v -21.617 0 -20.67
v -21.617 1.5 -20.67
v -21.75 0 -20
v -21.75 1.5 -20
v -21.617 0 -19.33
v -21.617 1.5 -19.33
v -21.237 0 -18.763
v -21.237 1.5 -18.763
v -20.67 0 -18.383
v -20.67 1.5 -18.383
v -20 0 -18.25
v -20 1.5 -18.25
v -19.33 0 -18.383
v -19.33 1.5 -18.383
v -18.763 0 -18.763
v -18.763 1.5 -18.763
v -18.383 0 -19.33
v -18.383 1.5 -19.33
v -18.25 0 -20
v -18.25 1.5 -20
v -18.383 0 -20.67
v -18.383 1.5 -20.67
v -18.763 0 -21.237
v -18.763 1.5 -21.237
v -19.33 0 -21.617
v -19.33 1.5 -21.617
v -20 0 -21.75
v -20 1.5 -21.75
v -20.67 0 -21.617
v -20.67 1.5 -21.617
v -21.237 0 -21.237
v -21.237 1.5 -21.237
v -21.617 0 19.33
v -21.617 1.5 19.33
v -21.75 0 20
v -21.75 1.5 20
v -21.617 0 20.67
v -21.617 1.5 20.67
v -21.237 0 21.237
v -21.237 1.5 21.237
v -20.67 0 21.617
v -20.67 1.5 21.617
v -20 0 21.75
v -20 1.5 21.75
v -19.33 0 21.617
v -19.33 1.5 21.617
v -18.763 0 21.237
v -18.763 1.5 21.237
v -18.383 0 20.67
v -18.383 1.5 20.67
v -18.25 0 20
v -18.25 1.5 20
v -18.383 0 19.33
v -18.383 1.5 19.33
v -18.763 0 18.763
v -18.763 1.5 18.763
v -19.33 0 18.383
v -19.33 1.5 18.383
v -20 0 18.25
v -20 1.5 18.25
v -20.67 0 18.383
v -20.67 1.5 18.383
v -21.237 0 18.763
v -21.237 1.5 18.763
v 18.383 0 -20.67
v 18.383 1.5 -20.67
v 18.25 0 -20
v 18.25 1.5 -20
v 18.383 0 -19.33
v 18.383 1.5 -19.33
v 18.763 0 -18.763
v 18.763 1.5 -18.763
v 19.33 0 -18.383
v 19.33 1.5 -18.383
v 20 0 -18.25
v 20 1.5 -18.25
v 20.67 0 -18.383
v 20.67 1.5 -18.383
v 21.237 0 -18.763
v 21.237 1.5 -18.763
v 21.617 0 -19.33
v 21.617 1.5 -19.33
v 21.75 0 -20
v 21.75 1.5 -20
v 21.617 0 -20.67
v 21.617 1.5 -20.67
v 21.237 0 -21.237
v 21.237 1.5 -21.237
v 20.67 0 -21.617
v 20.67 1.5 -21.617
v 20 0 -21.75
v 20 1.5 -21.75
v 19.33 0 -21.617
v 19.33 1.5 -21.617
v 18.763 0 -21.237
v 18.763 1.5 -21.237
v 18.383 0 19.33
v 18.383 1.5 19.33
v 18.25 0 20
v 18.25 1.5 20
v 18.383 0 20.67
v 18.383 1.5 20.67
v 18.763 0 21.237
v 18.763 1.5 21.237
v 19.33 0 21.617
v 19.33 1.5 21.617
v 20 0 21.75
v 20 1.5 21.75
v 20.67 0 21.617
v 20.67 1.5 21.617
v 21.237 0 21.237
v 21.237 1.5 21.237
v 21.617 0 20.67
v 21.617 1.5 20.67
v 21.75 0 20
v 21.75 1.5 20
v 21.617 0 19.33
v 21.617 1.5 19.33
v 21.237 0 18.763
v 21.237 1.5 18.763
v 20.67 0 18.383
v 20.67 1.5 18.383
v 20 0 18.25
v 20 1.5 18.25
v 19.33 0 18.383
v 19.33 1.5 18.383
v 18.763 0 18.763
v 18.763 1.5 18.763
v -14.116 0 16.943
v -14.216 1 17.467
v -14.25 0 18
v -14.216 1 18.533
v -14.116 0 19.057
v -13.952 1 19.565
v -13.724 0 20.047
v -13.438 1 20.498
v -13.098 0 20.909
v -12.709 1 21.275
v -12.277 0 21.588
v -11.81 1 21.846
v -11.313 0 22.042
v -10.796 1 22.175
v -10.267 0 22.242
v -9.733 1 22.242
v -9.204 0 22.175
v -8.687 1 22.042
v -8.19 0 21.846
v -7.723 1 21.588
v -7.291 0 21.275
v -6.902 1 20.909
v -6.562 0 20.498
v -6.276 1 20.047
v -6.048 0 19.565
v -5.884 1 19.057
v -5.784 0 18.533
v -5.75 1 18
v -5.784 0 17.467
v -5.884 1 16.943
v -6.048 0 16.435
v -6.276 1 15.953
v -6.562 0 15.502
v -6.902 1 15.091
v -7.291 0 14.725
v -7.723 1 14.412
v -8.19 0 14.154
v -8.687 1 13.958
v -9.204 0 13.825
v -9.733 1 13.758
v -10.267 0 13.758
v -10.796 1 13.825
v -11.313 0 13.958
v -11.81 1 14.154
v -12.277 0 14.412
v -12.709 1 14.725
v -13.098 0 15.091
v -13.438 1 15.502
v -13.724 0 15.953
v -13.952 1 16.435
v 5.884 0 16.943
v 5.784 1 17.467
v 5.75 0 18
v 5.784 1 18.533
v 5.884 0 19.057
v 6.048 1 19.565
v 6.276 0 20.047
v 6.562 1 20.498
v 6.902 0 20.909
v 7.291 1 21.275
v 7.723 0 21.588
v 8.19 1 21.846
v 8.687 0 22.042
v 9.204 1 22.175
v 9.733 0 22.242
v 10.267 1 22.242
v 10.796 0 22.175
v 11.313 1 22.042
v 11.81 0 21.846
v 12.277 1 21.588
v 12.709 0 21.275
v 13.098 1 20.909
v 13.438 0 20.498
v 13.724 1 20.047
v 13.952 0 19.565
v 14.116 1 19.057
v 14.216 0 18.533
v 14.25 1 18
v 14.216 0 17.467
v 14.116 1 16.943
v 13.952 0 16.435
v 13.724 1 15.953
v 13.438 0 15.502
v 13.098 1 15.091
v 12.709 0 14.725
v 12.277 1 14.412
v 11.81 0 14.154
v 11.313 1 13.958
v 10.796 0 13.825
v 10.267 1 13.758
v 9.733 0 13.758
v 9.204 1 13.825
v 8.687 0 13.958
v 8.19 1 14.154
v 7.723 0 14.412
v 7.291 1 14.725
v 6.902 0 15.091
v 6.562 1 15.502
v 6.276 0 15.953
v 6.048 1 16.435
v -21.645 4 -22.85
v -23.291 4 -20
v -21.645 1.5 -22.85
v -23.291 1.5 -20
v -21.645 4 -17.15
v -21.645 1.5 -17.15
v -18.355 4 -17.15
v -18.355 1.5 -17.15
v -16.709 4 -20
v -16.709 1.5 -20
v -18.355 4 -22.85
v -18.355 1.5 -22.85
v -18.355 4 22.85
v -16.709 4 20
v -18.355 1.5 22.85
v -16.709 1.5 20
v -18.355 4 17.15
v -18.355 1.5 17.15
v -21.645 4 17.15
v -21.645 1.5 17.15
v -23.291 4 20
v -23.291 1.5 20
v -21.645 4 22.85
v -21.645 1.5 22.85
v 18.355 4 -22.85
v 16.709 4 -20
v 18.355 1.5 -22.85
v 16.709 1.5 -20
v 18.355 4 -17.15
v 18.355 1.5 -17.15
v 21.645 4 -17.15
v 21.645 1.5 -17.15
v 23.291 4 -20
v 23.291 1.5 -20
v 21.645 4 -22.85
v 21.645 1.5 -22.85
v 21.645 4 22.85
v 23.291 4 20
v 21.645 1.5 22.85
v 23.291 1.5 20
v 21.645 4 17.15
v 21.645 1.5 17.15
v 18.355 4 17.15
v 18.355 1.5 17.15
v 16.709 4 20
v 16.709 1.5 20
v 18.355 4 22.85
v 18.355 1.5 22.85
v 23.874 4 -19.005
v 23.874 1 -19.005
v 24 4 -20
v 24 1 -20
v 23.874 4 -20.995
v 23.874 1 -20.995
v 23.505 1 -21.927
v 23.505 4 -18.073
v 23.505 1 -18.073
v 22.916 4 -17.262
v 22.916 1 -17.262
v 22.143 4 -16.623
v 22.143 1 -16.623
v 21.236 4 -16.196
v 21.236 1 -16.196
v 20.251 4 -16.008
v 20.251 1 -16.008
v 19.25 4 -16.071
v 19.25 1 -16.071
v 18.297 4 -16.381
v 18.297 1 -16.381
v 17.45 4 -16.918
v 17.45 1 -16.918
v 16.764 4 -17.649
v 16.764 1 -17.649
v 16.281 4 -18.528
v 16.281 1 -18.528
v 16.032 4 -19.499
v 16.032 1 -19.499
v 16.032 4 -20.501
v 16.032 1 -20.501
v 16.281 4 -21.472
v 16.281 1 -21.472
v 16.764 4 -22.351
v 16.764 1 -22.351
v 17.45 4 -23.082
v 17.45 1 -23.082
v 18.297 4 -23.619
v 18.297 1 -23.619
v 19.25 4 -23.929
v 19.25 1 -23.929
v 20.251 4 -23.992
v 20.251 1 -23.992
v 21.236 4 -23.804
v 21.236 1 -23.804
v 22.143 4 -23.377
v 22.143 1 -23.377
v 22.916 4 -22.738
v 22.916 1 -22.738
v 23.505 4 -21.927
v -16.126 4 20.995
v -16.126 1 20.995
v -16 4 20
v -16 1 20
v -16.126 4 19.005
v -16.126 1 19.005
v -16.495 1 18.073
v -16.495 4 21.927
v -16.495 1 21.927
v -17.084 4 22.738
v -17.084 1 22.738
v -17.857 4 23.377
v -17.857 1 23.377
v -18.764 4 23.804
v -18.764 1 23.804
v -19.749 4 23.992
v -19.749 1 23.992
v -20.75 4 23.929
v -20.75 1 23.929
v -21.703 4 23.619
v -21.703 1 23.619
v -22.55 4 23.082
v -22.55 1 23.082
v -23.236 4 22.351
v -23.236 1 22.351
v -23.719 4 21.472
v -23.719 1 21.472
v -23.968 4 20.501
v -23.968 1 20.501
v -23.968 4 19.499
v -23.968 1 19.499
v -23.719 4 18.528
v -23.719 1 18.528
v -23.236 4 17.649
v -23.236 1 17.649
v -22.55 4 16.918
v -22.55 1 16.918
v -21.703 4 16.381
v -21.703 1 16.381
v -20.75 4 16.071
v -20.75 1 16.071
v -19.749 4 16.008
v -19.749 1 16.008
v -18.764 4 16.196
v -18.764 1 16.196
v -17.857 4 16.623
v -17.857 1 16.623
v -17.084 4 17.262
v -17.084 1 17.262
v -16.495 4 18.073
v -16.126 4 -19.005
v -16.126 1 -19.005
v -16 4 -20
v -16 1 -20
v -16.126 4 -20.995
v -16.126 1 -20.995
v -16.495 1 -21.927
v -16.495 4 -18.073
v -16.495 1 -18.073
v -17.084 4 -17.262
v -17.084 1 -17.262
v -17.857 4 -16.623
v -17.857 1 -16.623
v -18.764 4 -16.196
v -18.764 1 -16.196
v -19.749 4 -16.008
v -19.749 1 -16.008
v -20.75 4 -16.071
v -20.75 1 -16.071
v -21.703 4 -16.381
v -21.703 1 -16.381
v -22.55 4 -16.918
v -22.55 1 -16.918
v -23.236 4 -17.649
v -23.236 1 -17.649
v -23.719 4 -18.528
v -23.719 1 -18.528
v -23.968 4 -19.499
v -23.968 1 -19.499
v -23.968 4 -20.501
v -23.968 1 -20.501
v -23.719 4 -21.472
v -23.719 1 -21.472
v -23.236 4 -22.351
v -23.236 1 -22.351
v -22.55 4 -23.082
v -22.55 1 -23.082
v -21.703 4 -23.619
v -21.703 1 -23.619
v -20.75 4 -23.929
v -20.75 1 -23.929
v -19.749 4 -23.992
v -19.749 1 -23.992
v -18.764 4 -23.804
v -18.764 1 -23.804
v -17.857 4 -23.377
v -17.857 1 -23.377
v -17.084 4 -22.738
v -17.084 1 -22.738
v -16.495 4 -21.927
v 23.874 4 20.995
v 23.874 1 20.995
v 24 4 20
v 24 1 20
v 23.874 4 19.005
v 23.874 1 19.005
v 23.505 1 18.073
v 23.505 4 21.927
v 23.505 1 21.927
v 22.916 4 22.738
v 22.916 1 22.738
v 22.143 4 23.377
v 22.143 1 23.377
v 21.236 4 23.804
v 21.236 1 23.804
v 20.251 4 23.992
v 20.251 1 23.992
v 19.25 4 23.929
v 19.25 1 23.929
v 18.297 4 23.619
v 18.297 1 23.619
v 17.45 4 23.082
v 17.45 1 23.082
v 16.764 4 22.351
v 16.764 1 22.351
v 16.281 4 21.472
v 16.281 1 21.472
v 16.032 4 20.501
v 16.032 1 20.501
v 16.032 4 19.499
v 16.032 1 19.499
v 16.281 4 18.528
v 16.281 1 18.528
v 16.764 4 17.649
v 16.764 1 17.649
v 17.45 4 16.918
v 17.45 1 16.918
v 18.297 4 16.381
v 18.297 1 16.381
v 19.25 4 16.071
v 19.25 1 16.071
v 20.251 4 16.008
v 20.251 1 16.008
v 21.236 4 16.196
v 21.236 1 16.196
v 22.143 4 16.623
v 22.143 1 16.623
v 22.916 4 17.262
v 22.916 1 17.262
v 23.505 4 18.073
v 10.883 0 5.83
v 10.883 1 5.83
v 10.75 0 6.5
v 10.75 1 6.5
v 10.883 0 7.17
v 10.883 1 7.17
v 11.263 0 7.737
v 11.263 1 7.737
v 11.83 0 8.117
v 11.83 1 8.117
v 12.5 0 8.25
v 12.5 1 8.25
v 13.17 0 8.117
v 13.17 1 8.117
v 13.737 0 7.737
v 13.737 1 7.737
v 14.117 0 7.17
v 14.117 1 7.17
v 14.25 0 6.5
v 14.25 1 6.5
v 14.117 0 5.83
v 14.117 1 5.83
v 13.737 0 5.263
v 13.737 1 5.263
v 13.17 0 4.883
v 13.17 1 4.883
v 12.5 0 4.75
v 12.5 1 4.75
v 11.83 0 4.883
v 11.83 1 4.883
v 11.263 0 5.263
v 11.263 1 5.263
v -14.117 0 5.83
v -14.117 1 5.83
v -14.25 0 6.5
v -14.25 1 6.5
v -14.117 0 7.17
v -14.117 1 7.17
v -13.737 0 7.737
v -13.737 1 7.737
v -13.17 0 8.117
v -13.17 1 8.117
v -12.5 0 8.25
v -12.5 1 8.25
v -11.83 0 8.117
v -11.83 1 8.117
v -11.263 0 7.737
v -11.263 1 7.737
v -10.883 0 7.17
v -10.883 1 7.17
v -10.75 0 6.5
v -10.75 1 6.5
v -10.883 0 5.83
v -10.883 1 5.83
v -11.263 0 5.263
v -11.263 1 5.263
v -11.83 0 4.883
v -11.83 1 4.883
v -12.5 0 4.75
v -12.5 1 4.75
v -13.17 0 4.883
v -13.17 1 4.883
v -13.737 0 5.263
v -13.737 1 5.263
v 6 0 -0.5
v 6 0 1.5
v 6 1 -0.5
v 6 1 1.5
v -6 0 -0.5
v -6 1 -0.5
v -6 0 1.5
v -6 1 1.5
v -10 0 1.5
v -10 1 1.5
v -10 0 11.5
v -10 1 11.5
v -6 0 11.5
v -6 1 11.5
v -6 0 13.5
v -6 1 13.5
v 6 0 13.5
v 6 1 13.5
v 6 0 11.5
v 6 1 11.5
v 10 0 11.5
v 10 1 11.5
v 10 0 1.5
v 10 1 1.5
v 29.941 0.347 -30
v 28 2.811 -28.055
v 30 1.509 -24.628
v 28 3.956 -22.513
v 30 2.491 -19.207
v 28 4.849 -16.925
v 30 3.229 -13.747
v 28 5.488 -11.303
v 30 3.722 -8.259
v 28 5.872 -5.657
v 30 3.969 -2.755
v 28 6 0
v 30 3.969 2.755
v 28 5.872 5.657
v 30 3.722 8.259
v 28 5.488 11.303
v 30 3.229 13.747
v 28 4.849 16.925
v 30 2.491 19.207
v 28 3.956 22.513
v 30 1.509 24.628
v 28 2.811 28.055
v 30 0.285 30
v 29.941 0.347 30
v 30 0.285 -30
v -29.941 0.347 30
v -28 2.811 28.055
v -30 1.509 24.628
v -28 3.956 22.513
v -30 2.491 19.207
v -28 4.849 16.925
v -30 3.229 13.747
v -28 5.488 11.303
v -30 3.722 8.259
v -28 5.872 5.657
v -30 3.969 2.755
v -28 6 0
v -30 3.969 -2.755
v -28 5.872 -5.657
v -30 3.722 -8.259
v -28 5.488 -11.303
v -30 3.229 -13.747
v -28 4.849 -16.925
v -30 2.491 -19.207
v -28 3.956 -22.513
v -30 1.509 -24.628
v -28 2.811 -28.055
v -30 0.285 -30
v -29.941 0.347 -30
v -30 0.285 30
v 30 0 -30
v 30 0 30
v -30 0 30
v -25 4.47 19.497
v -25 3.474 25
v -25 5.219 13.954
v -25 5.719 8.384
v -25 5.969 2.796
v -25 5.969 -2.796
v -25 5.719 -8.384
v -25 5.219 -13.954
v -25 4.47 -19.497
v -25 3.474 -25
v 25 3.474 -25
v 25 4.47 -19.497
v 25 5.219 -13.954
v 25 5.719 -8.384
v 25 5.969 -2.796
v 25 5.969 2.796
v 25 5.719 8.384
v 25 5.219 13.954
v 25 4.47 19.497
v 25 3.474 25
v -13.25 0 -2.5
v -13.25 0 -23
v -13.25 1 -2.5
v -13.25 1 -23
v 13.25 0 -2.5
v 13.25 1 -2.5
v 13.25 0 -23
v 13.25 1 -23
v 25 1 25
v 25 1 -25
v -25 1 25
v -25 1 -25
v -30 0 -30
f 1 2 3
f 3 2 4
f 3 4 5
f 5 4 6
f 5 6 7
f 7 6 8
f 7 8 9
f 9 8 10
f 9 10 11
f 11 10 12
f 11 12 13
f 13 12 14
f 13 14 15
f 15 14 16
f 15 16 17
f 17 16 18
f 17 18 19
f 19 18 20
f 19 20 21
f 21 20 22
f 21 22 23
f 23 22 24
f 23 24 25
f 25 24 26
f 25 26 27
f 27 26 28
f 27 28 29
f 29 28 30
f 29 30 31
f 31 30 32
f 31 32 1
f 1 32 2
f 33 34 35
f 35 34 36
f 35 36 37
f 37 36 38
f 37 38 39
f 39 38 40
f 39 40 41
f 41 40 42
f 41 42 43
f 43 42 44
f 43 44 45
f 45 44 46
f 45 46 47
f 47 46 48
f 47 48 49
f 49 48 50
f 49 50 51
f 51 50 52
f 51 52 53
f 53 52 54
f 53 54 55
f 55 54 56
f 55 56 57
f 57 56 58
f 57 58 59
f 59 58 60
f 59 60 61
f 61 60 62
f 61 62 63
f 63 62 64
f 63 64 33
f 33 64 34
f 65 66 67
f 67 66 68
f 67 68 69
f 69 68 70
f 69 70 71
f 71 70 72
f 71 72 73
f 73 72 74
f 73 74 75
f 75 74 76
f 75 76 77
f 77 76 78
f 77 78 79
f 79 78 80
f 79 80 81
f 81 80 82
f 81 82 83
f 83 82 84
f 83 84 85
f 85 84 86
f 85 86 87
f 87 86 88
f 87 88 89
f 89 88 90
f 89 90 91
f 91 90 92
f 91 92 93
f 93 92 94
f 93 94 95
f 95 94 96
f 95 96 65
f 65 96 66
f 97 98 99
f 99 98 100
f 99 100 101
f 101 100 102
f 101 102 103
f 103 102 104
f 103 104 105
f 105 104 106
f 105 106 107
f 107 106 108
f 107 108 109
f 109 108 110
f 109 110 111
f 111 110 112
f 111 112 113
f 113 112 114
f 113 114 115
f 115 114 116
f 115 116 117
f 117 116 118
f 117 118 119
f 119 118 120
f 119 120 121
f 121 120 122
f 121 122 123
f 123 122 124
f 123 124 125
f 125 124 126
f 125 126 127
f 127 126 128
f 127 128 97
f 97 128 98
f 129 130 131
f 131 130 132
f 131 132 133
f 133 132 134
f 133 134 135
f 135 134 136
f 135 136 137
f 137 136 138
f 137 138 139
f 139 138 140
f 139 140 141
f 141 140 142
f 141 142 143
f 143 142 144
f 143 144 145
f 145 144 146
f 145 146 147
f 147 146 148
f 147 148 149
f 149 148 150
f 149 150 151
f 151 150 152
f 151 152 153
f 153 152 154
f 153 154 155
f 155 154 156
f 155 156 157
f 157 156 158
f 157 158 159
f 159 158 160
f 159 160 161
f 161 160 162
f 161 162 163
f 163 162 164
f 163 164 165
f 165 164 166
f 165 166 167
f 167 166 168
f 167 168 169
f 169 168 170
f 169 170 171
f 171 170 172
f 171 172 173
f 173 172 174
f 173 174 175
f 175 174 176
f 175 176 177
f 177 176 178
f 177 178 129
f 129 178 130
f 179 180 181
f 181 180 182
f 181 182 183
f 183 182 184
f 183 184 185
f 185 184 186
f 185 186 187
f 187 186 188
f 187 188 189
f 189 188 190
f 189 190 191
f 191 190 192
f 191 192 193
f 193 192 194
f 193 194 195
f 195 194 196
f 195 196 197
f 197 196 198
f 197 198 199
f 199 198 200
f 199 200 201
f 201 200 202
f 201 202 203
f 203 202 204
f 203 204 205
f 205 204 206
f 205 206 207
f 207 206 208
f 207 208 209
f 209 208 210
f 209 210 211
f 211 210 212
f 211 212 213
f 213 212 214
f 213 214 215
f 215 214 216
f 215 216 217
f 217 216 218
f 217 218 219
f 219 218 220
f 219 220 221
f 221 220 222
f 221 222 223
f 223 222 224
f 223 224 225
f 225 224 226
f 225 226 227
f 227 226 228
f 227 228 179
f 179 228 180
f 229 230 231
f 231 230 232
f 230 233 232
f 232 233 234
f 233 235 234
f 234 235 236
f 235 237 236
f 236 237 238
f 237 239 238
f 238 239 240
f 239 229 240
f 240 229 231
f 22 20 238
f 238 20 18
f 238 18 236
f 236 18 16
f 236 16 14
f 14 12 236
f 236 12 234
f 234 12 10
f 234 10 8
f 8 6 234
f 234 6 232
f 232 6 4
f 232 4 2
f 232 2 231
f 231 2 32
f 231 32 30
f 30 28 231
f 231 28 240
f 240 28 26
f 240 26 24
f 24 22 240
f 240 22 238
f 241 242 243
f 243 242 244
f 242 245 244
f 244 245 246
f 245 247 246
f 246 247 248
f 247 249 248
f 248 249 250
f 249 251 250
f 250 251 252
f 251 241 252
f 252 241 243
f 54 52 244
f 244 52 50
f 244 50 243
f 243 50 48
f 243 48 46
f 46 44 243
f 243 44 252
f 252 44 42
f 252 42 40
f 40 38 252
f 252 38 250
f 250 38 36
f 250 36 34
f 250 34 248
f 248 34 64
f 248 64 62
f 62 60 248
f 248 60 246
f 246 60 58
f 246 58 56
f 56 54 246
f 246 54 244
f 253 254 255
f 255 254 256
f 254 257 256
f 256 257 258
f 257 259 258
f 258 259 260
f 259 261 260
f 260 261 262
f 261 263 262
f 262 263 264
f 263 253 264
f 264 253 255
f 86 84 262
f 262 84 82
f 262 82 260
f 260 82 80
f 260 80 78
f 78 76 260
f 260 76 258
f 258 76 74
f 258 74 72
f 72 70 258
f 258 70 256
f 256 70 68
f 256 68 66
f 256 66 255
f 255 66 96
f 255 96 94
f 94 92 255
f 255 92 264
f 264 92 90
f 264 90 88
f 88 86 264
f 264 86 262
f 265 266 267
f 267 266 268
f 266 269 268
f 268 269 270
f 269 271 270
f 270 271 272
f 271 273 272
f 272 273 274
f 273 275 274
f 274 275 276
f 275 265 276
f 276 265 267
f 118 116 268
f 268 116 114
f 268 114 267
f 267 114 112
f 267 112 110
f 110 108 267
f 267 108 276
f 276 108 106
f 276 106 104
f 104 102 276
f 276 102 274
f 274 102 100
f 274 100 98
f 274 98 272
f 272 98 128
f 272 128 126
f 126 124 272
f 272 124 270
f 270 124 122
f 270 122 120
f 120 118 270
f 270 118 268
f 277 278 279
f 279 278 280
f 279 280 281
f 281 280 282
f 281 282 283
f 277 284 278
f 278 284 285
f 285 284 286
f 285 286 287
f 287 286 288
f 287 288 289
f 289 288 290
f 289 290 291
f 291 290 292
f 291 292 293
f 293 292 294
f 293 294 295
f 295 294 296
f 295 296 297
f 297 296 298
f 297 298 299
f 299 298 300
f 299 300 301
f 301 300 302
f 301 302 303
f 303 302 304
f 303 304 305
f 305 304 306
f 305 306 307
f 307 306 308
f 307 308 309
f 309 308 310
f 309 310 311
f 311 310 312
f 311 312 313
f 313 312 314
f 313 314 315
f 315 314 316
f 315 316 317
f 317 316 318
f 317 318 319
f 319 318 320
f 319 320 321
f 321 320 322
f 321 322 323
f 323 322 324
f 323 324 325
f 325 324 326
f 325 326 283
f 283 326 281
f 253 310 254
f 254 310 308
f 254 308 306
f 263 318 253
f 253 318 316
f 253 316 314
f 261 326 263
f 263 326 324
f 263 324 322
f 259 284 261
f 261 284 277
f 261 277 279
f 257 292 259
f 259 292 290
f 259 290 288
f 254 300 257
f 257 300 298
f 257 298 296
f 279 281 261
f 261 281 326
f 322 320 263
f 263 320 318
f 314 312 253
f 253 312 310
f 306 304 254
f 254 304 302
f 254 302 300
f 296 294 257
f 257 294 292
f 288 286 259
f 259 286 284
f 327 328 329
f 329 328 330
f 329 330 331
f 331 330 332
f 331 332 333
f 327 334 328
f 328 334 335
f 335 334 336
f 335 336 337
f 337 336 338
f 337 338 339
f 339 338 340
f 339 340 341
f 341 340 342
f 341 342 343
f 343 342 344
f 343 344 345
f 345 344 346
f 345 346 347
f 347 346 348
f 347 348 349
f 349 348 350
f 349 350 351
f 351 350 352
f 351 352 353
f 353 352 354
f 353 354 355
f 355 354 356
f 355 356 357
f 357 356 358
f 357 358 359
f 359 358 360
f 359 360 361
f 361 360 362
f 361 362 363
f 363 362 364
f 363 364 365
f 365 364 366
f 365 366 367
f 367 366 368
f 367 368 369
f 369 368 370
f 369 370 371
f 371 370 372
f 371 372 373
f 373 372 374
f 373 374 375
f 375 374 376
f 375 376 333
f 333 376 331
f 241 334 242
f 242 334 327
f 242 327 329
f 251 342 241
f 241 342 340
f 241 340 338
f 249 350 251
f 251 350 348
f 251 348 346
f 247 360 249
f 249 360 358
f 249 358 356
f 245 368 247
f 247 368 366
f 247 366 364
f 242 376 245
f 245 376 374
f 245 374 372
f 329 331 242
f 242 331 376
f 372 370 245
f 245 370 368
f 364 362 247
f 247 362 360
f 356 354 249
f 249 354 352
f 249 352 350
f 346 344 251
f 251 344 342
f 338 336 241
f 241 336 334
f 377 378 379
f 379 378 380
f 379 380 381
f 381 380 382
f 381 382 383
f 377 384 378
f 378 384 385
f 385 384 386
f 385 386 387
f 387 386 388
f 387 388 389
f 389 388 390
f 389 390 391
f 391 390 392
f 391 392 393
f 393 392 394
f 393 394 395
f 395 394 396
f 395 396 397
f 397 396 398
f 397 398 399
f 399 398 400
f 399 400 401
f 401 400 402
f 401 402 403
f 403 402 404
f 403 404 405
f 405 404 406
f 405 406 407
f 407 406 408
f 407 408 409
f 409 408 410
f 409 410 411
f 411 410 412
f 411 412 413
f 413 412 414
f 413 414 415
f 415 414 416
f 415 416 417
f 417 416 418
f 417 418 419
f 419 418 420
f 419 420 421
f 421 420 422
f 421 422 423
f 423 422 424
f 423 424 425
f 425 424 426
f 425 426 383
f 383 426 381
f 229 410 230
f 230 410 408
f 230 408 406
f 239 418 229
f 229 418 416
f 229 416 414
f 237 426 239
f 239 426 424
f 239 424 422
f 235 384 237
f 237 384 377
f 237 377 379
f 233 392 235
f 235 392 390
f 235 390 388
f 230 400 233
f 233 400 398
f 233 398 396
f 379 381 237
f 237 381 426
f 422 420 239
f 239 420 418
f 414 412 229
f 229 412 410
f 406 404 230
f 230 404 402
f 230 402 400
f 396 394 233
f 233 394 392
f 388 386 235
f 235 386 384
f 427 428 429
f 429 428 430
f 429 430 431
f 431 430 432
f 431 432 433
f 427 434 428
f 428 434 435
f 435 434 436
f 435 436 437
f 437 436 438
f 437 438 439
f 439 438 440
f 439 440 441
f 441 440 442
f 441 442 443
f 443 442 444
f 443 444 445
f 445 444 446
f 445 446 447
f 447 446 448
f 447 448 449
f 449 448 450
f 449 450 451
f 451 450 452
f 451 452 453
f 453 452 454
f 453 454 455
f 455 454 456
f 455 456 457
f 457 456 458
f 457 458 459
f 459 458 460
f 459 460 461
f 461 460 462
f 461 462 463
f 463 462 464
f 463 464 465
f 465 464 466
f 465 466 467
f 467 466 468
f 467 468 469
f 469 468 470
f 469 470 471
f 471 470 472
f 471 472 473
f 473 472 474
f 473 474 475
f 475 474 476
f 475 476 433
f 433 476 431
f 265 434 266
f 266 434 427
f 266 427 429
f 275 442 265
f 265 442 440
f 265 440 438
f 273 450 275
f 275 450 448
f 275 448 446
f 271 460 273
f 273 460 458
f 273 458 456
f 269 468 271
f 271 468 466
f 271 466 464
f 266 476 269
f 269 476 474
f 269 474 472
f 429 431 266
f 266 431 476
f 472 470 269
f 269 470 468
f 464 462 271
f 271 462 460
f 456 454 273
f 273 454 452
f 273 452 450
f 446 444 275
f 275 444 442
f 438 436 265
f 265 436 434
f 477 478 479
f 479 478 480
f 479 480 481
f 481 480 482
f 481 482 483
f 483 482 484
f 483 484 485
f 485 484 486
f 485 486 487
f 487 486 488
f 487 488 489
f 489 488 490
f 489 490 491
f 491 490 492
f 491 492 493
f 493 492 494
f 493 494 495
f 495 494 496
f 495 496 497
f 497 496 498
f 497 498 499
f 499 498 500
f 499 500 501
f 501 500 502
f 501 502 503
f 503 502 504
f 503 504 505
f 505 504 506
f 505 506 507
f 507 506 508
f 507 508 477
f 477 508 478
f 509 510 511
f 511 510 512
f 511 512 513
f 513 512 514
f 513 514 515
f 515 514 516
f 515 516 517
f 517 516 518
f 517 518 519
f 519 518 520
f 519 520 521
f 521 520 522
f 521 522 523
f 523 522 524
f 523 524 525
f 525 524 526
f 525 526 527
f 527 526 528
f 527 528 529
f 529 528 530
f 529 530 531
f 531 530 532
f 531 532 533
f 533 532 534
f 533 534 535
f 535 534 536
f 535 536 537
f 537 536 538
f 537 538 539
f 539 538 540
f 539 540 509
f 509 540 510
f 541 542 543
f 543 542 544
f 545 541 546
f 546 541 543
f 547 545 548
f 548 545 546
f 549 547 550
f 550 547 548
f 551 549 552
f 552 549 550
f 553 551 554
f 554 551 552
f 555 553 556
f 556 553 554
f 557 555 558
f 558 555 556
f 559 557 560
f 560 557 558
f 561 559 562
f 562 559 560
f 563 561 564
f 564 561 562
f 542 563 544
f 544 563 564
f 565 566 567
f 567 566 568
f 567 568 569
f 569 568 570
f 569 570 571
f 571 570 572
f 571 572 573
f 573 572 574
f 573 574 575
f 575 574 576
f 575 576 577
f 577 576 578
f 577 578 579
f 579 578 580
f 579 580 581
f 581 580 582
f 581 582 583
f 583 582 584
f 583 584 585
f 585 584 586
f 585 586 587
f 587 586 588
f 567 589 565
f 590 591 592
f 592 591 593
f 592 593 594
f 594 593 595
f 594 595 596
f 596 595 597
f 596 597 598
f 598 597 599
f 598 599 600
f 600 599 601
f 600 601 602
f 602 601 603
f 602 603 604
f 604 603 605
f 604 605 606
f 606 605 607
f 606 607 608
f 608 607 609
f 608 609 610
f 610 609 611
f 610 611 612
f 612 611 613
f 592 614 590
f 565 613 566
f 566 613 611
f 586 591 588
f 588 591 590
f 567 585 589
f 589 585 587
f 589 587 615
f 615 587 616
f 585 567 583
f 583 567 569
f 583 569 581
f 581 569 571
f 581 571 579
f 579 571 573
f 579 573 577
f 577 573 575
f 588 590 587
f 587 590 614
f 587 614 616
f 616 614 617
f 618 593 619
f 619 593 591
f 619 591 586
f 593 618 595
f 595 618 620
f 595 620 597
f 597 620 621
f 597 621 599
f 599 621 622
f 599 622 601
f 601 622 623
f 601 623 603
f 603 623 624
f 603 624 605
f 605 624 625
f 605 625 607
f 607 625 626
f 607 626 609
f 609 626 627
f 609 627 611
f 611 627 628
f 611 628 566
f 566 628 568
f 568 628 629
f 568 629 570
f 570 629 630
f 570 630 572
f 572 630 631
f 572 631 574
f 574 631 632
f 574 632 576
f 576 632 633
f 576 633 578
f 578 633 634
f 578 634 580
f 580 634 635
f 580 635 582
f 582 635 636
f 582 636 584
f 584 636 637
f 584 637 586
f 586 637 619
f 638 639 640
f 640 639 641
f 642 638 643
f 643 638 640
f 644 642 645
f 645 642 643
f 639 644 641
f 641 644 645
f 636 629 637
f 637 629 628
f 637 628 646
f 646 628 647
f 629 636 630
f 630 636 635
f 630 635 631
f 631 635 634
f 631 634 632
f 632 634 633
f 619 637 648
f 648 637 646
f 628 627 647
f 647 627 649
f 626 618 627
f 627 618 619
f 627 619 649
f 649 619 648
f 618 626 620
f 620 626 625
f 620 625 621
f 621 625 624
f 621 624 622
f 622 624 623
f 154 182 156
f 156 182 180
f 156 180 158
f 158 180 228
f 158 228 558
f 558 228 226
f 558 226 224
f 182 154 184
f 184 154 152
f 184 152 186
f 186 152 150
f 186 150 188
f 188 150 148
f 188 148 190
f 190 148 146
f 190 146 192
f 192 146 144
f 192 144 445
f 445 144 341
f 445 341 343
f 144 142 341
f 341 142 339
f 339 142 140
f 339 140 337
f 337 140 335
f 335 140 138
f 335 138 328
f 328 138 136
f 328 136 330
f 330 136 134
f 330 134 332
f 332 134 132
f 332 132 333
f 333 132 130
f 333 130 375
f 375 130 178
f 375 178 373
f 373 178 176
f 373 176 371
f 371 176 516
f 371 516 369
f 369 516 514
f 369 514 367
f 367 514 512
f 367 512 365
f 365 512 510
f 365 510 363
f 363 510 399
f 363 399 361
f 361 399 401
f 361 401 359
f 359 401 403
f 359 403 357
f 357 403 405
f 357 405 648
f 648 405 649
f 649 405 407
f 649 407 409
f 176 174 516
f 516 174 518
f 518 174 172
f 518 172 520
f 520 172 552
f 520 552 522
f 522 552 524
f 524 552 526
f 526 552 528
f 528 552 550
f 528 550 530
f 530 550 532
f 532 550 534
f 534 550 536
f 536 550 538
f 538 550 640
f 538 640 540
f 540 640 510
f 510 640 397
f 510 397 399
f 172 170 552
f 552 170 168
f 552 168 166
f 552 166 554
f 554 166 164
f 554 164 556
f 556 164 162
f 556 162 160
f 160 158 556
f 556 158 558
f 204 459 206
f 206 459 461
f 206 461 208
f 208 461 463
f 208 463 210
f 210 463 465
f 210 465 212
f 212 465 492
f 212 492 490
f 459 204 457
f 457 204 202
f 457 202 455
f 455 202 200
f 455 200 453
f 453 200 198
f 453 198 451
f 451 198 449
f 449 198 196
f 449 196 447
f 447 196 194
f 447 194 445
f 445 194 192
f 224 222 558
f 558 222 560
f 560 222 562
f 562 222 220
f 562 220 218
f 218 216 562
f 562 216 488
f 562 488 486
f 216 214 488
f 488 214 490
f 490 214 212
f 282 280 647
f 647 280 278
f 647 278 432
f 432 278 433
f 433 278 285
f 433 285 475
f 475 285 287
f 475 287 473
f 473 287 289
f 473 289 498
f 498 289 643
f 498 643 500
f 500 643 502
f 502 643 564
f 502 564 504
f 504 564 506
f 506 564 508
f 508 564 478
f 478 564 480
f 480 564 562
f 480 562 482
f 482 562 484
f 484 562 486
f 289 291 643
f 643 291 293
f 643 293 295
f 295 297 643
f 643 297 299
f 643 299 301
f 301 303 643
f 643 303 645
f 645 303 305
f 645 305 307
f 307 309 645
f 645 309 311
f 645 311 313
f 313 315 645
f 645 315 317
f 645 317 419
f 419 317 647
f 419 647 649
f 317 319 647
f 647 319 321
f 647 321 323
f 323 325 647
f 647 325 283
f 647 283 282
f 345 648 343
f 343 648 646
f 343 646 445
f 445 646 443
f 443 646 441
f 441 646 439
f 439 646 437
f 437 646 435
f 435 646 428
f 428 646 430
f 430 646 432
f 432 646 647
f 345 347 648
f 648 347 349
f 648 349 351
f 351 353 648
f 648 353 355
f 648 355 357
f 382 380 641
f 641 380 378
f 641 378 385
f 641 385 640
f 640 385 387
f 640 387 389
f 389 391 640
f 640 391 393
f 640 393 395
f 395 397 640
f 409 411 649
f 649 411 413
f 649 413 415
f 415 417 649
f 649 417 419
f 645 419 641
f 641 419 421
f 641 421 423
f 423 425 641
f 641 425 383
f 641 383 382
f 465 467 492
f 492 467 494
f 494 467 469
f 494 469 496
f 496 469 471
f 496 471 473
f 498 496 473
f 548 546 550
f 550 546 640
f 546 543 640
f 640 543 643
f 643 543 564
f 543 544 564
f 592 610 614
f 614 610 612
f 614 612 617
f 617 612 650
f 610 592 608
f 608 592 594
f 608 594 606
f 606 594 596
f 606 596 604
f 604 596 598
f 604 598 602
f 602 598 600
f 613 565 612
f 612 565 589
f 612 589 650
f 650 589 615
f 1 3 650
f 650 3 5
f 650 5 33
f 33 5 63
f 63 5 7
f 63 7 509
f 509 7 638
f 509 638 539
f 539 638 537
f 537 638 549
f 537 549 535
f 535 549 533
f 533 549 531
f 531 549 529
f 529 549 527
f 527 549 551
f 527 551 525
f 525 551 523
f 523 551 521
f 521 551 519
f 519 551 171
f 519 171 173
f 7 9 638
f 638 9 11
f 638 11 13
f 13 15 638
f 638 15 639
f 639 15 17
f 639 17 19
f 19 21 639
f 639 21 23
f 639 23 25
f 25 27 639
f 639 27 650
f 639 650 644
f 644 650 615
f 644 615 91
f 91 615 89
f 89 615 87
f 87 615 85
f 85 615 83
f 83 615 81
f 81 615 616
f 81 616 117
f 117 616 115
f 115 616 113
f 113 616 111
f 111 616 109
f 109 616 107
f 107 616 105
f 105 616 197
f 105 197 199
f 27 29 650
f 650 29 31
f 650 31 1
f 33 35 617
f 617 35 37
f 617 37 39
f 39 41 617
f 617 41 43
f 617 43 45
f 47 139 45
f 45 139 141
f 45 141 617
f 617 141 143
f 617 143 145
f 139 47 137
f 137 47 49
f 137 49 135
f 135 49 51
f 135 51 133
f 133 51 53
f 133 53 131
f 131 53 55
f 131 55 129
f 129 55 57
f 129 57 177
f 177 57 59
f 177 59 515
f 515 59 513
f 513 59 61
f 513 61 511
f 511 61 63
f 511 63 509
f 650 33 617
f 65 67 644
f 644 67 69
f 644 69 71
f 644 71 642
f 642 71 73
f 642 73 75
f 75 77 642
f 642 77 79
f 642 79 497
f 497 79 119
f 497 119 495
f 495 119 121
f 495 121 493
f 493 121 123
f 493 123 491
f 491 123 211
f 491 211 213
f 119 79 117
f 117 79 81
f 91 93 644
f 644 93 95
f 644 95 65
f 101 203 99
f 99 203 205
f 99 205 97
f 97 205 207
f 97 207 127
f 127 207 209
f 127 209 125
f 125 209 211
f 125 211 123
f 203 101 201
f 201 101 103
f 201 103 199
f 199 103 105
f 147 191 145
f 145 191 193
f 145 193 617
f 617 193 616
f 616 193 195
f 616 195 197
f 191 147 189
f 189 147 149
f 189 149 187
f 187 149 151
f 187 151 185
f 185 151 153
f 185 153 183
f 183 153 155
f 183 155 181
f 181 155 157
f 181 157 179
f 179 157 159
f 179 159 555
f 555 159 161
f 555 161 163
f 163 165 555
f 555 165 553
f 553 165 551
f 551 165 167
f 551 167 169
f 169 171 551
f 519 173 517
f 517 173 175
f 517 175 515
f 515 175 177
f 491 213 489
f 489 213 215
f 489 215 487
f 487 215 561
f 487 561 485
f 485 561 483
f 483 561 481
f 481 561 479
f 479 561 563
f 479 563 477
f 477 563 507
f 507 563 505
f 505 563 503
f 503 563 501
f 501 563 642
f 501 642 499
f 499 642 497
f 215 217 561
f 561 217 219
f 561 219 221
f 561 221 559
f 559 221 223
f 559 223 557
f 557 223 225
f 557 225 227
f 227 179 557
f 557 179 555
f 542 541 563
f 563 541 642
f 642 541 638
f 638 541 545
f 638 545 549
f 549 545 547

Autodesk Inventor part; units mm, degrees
ref_plane "YZ Plane" through (0, 0, 0) normal (1, 0, 0) x (0, 1, 0)
ref_plane "XZ Plane" through (0, 0, 0) normal (0, 1, 0) x (-1, 0, 0)
sketch "Sketch1" plane through (0, 0, 0) normal (0, 1, 0) x (-1, 0, 0)
  line L0 (30, 30) -> (-30, 30)
  line L1 (-30, 30) -> (-30, -30)
  line L2 (-30, -30) -> (30, -30)
  line L3 (30, -30) -> (30, 30)
  line L4 (30, 30) -> (-30, -30) construction
  line L5 (-30, 30) -> (30, -30) construction
  point P0 (0, 0)
  dimension "d0" = 60
  dimension "d1" = 60
extrude "Extrusion1" add sketch "Sketch1" along normal blind 6
sketch "Sketch2" plane through (30, 0, 30) normal (1, 0, 0) x (0, 0, -1)
  circle A0 centre (30, -119) radius 125
  line L0 (0, 6) -> (60, 6) projected
  line L1 (0, 0) -> (60, 0) projected
  point P0 (30, 0)
  point P1 (30, 0)
  dimension "d4" = 250
extrude "Extrusion2" cut sketch "Sketch2" against normal through all keep common part
ref_plane "Work Plane1" through (30, 6, 0) normal (0, -1, 0) x (1, 0, 0)
sketch "Sketch3" plane through (30, 6, 0) normal (0, -1, 0) x (1, 0, 0)
  line L0 (-55, -25) -> (-5, -25)
  line L1 (-5, -25) -> (-5, 25)
  line L2 (-5, 25) -> (-55, 25)
  line L3 (-55, 25) -> (-55, -25)
  line L4 (-55, -25) -> (-5, 25) construction
  line L5 (-5, -25) -> (-55, 25) construction
  line L6 (0, -30) -> (-60, -30) projected
  line L7 (0, 30) -> (0, -30) projected
  point P0 (-30, 0)
  point P1 (-30, 0)
  dimension "d19" = 5
  dimension "d20" = 5
extrude "Extrusion3" cut sketch "Sketch3" along normal blind 5
sketch "Sketch4" plane through (30, 1, 0) normal (0, 1, 0) x (1, 0, 0)
  line L0 (-43.25, 23) -> (-16.75, 23)
  line L1 (-16.75, 23) -> (-16.75, 2.5)
  line L2 (-16.75, 2.5) -> (-43.25, 2.5)
  line L3 (-43.25, 2.5) -> (-43.25, 23)
  line L4 (-43.25, 23) -> (-16.75, 2.5) construction
  line L5 (-16.75, 23) -> (-43.25, 2.5) construction
  line L6 (-55, 25) -> (-5, 25) projected
  line L7 (-30, 12.75) -> (-30, 10.9588)
  line L8 (-40, -1.5) -> (-20, -1.5)
  line L9 (-20, -1.5) -> (-20, -11.5)
  line L10 (-20, -11.5) -> (-40, -11.5)
  line L11 (-40, -11.5) -> (-40, -1.5)
  line L12 (-40, -1.5) -> (-20, -11.5) construction
  line L13 (-20, -1.5) -> (-40, -11.5) construction
  circle A0 centre (-42.5, -6.5) radius 1.75
  circle A1 centre (-17.5, -6.5) radius 1.75
  circle A2 centre (-40, -18) radius 4.25
  circle A3 centre (-20, -18) radius 4.25
  line L14 (-24, -13.5) -> (-36, -13.5)
  line L15 (-36, -13.5) -> (-36, -11.5)
  line L16 (-36, -11.5) -> (-24, -11.5)
  line L17 (-24, -11.5) -> (-24, -13.5)
  line L18 (-24, -13.5) -> (-36, -11.5) construction
  line L19 (-36, -13.5) -> (-24, -11.5) construction
  line L20 (-24, 0.5) -> (-36, 0.5)
  line L21 (-36, 0.5) -> (-36, -1.5)
  line L22 (-36, -1.5) -> (-24, -1.5)
  line L23 (-24, -1.5) -> (-24, 0.5)
  line L24 (-24, 0.5) -> (-36, -1.5) construction
  line L25 (-36, 0.5) -> (-24, -1.5) construction
  line L26 (0, 30) -> (-60, 30) projected
  point P0 (-30, 0)
  point P1 (-30, -6.5)
  point P2 (-30, -12.5)
  point P3 (-30, -0.5)
  point P4 (-24, -11.5)
  point P5 (-24, -1.5)
  dimension "d11" = 20.5
  dimension "d12" = 26.5
  dimension "d13" = 2
  dimension "d26" = 10
  dimension "d27" = 20
  dimension "d28" = 4
  dimension "d29" = 3.5
  dimension "d30" = 3.5
  dimension "d31" = 25
  dimension "d38" = 8.5
  dimension "d42" = 20
  dimension "d43" = 12
  dimension "d44" = 2
  dimension "d45" = 12
  dimension "d46" = 2
  dimension "d64" = 48
extrude "Extrusion4" cut sketch "Sketch4" against normal through all contours L0 L1 L2 L3
chamfer "Chamfer1" distance 2 angle 45 4 edges at (-30, 6, 0) (0, 2.3466, -30) (30, 6, 0) (0, 2.3466, 30)
extrude "Extrusion6" cut sketch "Sketch4" against normal blind 10 contours L8 L9 L10 L11 | L21 L20 L23 L8 | L10 L17 L14 L15
extrude "Extrusion7" cut sketch "Sketch4" against normal through all contours A0 | A1
sketch "Sketch8" plane through (30, 1, 0) normal (0, 1, 0) x (1, 0, 0)
  line L0 (-30, -21.9563) -> (-30, 0)
  line L1 (-30, 0) -> (-52.0851, 0)
  line L2 (-24, 0.5) -> (-36, 0.5) projected
  circle A0 centre (-10, -20) radius 4
  circle A1 centre (-50, -20) radius 4
  circle A2 centre (-10, 20) radius 4
  circle A3 centre (-50, 20) radius 4
  dimension "d56" = 8
  dimension "d57" = 40
  dimension "d58" = 40
extrude "Extrusion11" add sketch "Sketch8" along normal blind 3
sketch "Sketch9" plane through (20, 4, 20) normal (0, 1, 0) x (1, 0, 0)
  circle A0 centre (0, 0) radius 4 projected
  line L0 (-3.2909, 0) -> (-1.6454, 2.85)
  line L1 (-1.6454, 2.85) -> (1.6454, 2.85)
  line L2 (1.6454, 2.85) -> (3.2909, 0)
  line L3 (3.2909, 0) -> (1.6454, -2.85)
  line L4 (1.6454, -2.85) -> (-1.6454, -2.85)
  line L5 (-1.6454, -2.85) -> (-3.2909, 0)
  line L6 (-20, 20) -> (-20, -14.7527)
  line L7 (-20, 20) -> (-56.1519, 20)
  line L8 (-36.7091, 0) -> (-38.3546, 2.85)
  line L9 (-38.3546, 2.85) -> (-41.6454, 2.85)
  line L10 (-41.6454, 2.85) -> (-43.2909, 0)
  line L11 (-43.2909, 0) -> (-41.6454, -2.85)
  line L12 (-41.6454, -2.85) -> (-38.3546, -2.85)
  line L13 (-38.3546, -2.85) -> (-36.7091, 0)
  line L14 (-3.2909, 40) -> (-1.6454, 37.15)
  line L15 (-1.6454, 37.15) -> (1.6454, 37.15)
  line L16 (1.6454, 37.15) -> (3.2909, 40)
  line L17 (3.2909, 40) -> (1.6454, 42.85)
  line L18 (1.6454, 42.85) -> (-1.6454, 42.85)
  line L19 (-1.6454, 42.85) -> (-3.2909, 40)
  line L20 (-43.2909, 40) -> (-41.6454, 42.85)
  line L21 (-41.6454, 42.85) -> (-38.3546, 42.85)
  line L22 (-38.3546, 42.85) -> (-36.7091, 40)
  line L23 (-36.7091, 40) -> (-38.3546, 37.15)
  line L24 (-38.3546, 37.15) -> (-41.6454, 37.15)
  line L25 (-41.6454, 37.15) -> (-43.2909, 40)
  dimension "d61" = 5.7
extrude "Extrusion12" cut sketch "Sketch9" against normal blind 2.5 contours L0 L1 L2 L3 L4 L5 | L13 L12 L11 L10 L9 L8 | L19 L18 L17 L16 L15 L14 | L20 L21 L22 L23 L24 L25
extrude "Extrusion9" cut sketch "Sketch4" against normal through all contours A2 | A3
sketch "Sketch11" plane through (20, 1.5, 20) normal (0, 1, 0) x (1, 0, 0)
  circle A0 centre (0, 0) radius 1.75
  circle A1 centre (-40, 0) radius 1.75
  circle A2 centre (-40, 40) radius 1.75
  circle A3 centre (0, 40) radius 1.75
  point P0 (-20, 20)
  dimension "d72" = 3.5
  dimension "d73" = 3.5
  dimension "d74" = 3.5
  dimension "d75" = 3.5
extrude "Extrusion13" cut sketch "Sketch11" against normal through all
sketch "Sketch7" plane through (30, 1, 0) normal (0, 1, 0) x (1, 0, 0)
  circle A0 centre (-10, -6.5) radius 1.65
  circle A1 centre (-50, -6.5) radius 1.65
  line L0 (-30, -18.5284) -> (-30, 12.7052) construction
  circle A2 centre (-17.5, -6.5) radius 1.75 construction
  point P0 (-30, 0)
  dimension "d52" = 3.3
  dimension "d53" = 40
equation "\"d30\" = d29"
equation "\"d45\" = d43"
equation "\"d46\" = d44"
equation "\"d73\" = d72"
equation "\"d74\" = d72"
equation "\"d75\" = d72"
properties part number "power_signal_socket" material "Acetal Resin, Black"
